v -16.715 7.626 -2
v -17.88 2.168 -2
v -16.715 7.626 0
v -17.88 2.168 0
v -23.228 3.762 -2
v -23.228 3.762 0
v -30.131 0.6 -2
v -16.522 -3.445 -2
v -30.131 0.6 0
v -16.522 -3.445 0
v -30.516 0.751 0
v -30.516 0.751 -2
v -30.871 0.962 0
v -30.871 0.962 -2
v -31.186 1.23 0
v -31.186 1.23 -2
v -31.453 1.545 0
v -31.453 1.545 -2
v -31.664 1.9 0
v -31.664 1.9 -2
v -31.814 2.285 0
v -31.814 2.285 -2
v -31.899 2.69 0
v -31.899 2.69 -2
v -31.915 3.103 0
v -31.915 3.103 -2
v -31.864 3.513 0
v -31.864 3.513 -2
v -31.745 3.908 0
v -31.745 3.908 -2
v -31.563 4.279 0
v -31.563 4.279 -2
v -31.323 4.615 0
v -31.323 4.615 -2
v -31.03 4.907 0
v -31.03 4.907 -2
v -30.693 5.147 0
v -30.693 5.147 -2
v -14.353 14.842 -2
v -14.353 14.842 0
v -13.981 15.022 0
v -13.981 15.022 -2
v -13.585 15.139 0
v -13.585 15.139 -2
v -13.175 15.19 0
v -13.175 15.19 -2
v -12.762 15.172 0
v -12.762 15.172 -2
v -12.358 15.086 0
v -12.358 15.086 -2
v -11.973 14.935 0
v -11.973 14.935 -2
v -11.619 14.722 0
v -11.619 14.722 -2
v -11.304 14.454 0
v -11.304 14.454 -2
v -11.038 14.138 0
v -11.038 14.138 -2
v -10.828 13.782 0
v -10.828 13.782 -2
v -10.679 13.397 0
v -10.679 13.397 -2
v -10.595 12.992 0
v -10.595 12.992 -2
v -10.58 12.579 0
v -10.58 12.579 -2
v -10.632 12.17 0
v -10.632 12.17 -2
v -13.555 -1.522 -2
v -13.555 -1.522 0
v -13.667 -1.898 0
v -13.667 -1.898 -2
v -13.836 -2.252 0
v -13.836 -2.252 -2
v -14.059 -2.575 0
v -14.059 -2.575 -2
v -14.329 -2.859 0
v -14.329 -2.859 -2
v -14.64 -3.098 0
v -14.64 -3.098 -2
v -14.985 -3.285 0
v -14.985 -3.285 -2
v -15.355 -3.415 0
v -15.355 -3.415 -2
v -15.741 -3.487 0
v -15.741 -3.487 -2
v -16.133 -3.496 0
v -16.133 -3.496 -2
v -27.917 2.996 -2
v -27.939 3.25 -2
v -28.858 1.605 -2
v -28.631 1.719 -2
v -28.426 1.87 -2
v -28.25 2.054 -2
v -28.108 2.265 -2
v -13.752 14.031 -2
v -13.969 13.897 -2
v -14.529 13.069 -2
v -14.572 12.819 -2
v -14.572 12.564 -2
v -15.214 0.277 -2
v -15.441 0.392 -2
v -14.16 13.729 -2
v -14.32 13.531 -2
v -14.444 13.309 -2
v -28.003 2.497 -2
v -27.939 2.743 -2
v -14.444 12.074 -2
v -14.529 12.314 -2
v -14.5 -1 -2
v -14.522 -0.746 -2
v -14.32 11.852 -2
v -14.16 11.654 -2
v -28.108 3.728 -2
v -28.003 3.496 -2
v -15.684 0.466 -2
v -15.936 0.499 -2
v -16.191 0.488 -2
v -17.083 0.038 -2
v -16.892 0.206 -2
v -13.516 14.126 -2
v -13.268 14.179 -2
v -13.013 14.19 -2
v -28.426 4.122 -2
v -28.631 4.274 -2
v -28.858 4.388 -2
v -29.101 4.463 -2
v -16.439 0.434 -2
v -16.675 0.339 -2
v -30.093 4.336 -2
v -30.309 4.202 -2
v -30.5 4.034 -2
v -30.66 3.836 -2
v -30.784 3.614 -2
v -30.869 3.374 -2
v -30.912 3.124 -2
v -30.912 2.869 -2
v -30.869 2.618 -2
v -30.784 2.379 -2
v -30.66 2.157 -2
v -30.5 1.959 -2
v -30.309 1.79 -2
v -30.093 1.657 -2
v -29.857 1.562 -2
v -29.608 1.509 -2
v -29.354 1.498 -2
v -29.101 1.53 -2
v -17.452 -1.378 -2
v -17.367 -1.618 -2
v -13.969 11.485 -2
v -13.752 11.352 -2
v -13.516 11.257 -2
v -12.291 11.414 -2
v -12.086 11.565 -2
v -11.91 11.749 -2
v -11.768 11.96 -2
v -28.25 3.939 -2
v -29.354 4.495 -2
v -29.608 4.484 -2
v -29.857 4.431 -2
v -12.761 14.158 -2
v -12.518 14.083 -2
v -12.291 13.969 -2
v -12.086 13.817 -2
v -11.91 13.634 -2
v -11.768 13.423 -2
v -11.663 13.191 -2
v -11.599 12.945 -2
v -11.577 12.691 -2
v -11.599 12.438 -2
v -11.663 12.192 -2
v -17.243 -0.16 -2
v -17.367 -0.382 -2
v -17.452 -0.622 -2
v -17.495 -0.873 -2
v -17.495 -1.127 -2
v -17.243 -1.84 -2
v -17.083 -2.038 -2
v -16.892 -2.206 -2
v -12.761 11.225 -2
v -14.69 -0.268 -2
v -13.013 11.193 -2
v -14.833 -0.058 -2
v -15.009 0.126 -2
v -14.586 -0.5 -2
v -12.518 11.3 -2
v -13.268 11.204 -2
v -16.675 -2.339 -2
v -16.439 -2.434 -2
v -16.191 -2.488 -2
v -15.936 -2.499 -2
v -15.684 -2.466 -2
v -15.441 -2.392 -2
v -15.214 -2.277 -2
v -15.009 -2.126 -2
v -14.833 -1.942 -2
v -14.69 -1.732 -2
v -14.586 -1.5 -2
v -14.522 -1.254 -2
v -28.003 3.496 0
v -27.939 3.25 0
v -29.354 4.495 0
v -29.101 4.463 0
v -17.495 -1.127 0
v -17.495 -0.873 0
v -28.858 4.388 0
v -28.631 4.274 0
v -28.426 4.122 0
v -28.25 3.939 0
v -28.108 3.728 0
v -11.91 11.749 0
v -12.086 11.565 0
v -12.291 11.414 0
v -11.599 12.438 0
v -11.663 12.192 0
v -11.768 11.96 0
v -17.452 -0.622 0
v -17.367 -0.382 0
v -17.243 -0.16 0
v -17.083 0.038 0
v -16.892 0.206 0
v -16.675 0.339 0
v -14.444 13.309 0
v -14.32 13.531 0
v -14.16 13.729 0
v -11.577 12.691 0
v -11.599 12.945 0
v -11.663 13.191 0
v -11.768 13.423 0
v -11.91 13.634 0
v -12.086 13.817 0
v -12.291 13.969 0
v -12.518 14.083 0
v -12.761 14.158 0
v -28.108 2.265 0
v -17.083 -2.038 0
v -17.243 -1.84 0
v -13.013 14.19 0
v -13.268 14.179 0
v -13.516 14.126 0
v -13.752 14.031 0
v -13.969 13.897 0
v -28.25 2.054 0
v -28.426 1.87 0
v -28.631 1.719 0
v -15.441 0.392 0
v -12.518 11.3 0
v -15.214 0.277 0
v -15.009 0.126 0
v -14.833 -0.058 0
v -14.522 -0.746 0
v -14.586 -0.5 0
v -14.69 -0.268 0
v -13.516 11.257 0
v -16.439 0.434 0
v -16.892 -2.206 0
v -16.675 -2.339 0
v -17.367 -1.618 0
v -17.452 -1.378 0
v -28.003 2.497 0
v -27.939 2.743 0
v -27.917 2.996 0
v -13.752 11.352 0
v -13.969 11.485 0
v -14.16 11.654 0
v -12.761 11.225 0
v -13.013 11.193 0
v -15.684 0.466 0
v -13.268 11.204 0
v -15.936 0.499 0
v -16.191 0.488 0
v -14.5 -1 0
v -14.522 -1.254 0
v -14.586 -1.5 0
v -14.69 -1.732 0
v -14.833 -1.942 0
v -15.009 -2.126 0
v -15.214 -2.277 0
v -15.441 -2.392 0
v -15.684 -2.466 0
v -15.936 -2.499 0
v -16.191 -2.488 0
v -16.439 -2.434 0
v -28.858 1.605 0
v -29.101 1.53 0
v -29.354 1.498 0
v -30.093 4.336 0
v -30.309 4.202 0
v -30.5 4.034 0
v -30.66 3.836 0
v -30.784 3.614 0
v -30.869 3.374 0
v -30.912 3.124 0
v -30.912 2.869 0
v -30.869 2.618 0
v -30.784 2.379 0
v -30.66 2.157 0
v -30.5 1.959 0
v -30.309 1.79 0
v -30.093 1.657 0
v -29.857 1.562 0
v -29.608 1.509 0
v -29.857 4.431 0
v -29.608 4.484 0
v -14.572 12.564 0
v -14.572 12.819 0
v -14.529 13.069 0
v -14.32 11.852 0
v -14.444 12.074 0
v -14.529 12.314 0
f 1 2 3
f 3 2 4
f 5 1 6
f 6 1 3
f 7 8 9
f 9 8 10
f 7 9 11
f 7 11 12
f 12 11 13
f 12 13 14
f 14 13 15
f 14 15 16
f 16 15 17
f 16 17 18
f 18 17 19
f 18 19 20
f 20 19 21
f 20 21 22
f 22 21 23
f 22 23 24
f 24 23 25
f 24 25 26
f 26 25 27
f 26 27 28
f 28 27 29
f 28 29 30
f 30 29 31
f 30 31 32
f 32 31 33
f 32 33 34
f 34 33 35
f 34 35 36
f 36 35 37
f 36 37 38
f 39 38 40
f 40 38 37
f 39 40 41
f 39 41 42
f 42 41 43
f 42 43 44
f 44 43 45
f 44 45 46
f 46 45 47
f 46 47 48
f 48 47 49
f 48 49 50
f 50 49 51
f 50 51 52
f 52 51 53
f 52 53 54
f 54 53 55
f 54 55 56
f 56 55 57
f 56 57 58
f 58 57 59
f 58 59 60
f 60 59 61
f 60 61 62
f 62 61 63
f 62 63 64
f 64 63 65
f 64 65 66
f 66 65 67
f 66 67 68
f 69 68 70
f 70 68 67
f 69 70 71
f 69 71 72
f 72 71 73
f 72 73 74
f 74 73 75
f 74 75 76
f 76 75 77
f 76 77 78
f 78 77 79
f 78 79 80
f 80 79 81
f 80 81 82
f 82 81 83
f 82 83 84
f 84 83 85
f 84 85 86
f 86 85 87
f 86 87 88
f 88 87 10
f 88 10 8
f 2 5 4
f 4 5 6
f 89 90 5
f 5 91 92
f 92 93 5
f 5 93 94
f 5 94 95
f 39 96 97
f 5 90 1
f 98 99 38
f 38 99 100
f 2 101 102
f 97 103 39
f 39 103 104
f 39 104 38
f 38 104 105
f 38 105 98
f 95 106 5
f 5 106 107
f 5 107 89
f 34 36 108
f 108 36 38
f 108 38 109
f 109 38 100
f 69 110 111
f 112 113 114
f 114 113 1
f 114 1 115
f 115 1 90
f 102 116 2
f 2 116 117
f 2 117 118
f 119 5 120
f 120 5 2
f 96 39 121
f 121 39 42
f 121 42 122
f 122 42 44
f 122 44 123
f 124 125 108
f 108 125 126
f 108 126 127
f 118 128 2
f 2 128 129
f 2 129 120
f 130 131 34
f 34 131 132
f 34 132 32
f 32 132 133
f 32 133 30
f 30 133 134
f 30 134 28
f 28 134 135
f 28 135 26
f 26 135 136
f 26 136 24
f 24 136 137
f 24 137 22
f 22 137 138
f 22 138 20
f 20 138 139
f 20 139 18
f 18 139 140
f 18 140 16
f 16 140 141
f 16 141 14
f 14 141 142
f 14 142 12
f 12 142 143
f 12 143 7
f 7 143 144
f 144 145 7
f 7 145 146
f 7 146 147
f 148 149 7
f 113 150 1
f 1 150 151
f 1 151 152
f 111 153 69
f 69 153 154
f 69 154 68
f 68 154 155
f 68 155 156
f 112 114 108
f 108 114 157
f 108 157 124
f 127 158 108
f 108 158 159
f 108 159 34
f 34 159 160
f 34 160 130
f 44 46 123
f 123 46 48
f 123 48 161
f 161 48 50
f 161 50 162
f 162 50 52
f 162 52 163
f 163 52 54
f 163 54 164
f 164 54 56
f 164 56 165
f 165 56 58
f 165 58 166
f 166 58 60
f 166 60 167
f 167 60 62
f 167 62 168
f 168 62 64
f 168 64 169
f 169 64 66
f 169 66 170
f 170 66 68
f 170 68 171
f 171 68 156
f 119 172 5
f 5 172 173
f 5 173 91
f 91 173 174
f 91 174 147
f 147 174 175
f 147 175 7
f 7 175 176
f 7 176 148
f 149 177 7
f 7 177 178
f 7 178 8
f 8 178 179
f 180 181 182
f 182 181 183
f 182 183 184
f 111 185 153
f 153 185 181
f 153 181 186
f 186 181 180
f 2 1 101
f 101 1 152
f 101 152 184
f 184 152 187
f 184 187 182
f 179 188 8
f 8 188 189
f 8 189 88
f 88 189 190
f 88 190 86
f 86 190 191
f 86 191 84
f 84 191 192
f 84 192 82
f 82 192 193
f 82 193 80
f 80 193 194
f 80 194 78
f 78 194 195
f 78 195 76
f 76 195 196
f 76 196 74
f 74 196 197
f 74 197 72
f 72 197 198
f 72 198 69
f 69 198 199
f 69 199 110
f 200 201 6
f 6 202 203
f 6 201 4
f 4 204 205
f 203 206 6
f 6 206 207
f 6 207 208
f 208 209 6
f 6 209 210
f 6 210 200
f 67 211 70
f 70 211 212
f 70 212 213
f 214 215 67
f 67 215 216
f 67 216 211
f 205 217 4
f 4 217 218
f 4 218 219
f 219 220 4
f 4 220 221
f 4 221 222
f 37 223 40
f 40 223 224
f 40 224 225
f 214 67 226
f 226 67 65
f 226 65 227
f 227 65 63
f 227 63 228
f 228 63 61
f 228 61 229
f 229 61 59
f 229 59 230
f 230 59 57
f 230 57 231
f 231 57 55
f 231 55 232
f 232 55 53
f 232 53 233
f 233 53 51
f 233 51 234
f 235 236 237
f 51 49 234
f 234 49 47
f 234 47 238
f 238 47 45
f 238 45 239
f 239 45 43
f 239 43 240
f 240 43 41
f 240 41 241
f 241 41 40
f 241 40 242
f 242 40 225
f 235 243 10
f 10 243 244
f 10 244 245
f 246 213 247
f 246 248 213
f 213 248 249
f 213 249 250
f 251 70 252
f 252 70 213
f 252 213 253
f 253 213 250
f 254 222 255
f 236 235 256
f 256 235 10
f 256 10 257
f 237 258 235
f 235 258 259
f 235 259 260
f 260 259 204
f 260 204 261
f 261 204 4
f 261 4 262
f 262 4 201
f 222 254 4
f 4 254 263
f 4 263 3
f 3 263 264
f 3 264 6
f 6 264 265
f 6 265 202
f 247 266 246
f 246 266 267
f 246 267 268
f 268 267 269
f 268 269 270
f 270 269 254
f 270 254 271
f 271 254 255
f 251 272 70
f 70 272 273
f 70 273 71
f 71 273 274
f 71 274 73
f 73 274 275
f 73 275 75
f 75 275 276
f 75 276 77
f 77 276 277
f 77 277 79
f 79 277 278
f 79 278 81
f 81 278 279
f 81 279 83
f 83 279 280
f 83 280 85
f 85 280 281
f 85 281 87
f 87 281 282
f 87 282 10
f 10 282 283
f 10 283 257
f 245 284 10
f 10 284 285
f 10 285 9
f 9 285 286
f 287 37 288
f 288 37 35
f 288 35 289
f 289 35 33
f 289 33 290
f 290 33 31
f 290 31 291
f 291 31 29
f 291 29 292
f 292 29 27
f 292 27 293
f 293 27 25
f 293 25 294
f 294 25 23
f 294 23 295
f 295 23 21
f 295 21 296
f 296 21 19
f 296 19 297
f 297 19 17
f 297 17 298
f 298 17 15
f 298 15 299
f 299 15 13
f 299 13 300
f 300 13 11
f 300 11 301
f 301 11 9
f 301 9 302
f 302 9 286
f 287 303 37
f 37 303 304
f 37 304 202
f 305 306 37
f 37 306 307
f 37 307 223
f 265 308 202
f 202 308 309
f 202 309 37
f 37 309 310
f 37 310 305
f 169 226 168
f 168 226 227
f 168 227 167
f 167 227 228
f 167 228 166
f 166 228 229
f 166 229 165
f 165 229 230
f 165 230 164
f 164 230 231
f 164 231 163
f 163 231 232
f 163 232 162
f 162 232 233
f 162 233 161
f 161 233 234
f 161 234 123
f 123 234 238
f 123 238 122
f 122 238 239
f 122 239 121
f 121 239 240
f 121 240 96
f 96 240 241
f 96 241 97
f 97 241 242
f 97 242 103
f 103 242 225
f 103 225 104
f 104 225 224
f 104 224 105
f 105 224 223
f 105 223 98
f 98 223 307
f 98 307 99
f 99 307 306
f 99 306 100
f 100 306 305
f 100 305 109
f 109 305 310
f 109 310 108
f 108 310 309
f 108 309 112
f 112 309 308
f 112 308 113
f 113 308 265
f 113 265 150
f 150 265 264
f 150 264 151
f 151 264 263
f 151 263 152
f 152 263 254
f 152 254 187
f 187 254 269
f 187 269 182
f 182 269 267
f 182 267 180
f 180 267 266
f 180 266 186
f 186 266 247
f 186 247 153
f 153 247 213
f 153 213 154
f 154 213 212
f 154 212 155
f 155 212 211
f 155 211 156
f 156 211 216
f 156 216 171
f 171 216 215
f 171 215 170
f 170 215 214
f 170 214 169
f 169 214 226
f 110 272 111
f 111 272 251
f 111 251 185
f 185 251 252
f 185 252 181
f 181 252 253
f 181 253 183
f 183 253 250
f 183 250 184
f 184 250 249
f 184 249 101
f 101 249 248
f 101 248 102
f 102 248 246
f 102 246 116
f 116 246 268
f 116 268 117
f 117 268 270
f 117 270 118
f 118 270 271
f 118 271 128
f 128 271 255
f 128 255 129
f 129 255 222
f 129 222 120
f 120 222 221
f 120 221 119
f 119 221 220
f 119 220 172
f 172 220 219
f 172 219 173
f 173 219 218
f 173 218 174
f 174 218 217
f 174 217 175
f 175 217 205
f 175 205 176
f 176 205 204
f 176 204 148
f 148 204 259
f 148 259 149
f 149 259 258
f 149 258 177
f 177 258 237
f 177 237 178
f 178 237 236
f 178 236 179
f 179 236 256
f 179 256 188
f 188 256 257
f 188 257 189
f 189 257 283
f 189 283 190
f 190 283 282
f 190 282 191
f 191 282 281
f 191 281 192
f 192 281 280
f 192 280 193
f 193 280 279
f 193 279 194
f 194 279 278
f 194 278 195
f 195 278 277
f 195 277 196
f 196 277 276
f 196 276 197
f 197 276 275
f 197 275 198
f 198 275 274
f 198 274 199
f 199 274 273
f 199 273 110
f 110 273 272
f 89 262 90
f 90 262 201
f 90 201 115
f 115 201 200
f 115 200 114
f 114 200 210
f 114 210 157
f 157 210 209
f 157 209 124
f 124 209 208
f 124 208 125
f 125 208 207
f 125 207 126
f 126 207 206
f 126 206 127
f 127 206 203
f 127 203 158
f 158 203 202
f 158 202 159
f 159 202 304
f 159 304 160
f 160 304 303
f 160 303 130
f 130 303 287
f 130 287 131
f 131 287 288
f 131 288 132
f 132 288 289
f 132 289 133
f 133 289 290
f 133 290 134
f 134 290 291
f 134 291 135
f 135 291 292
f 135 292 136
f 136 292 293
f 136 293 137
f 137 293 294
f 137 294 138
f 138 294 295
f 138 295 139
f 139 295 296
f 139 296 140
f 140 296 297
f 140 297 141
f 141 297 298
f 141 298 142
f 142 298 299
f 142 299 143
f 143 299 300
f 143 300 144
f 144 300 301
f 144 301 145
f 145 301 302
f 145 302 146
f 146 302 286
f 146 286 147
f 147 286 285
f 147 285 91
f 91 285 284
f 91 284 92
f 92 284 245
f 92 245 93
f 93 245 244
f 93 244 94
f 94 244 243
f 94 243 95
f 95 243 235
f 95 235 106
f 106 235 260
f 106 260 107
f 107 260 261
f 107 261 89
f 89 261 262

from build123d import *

# Parameters (mm, degrees)
BOSS_EXTRU_1_DEPTH      = 2
ESQUISSE2_R             = 1.5
ENL_V_MAT_EXTRU_1_DEPTH = 2


with BuildPart() as part:
    # Esquisse1 → Boss.-Extru.1 (new body)
    with BuildSketch(Plane.XY):
        with BuildLine():
            ThreePointArc((-30.69312299, 5.146506838), (-29.724192295, 5.477574873), (-28.703807813, 5.392438272))
            Line((-28.703807813, 5.392438272), (-23.228481357, 3.761582946))
            Line((-23.228481357, 3.761582946), (-16.714786598, 7.626279325))
            Line((-16.714786598, 7.626279325), (-15.522036632, 13.213428546))
            ThreePointArc((-15.522036632, 13.213428546), (-15.107728814, 14.149794802), (-14.352789293, 14.841531062))
            Line((-14.352789293, 14.841531062), (-30.69312299, 5.146506838))
        make_face()
        with BuildLine():
            Line((-23.228481357, 3.761582946), (-28.703807813, 5.392438272))
            ThreePointArc((-28.703807813, 5.392438272), (-29.724192295, 5.477574873), (-30.69312299, 5.146506838))
            ThreePointArc((-30.69312299, 5.146506838), (-31.89857385, 2.689732543), (-30.131116002, 0.60048759))
            ThreePointArc((-30.131116002, 0.60048759), (-29.11073152, 0.515350989), (-28.141800825, 0.846419024))
            Line((-28.141800825, 0.846419024), (-23.228481357, 3.761582946))
        make_face()
        with BuildLine():
            ThreePointArc((-28.141800825, 0.846419024), (-29.11073152, 0.515350989), (-30.131116002, 0.60048759))
            Line((-30.131116002, 0.60048759), (-16.898324022, -3.333026779))
            ThreePointArc((-16.898324022, -3.333026779), (-18.198183706, -2.190793179), (-18.44490842, -0.478058609))
            Line((-18.44490842, -0.478058609), (-17.879921595, 2.168485758))
            Line((-17.879921595, 2.168485758), (-23.228481357, 3.761582946))
            Line((-23.228481357, 3.761582946), (-28.141800825, 0.846419024))
        make_face()
        with BuildLine():
            Line((-15.286345905, 1.395975341), (-17.879921595, 2.168485758))
            Line((-17.879921595, 2.168485758), (-18.44490842, -0.478058609))
            ThreePointArc((-18.44490842, -0.478058609), (-18.198183706, -2.190793179), (-16.898324022, -3.333026779))
            Line((-16.898324022, -3.333026779), (-16.521941391, -3.44490842))
            ThreePointArc((-16.521941391, -3.44490842), (-14.640256973, -3.09787962), (-13.55509158, -1.521941391))
            ThreePointArc((-13.55509158, -1.521941391), (-13.849956093, 0.275661082), (-15.286345905, 1.395975341))
        make_face()
        with BuildLine():
            Line((-16.714786598, 7.626279325), (-17.879921595, 2.168485758))
            Line((-17.879921595, 2.168485758), (-15.286345905, 1.395975341))
            ThreePointArc((-15.286345905, 1.395975341), (-13.849956093, 0.275661082), (-13.55509158, -1.521941391))
            Line((-13.55509158, -1.521941391), (-10.632219791, 12.169545764))
            ThreePointArc((-10.632219791, 12.169545764), (-11.046527609, 11.233179508), (-11.801467129, 10.541443247))
            Line((-11.801467129, 10.541443247), (-16.714786598, 7.626279325))
        make_face()
        with BuildLine():
            Line((-15.522036632, 13.213428546), (-16.714786598, 7.626279325))
            Line((-16.714786598, 7.626279325), (-11.801467129, 10.541443247))
            ThreePointArc((-11.801467129, 10.541443247), (-11.046527609, 11.233179508), (-10.632219791, 12.169545764))
            ThreePointArc((-10.632219791, 12.169545764), (-11.618820564, 14.722087757), (-14.352789293, 14.841531062))
            ThreePointArc((-14.352789293, 14.841531062), (-15.107728814, 14.149794802), (-15.522036632, 13.213428546))
        make_face()
    extrude(amount=-BOSS_EXTRU_1_DEPTH)

    # Esquisse2 → Enlèv. mat.-Extru.1 (cut)
    with BuildSketch(Plane.XY):
        with Locations((-29.417461908, 2.996462931)):
            Circle(ESQUISSE2_R)
        with Locations((-16, -1)):
            Circle(ESQUISSE2_R)
        with Locations((-13.077128211, 12.691487155)):
            Circle(ESQUISSE2_R)
    extrude(amount=-ENL_V_MAT_EXTRU_1_DEPTH, mode=Mode.SUBTRACT)


solid = part.part
